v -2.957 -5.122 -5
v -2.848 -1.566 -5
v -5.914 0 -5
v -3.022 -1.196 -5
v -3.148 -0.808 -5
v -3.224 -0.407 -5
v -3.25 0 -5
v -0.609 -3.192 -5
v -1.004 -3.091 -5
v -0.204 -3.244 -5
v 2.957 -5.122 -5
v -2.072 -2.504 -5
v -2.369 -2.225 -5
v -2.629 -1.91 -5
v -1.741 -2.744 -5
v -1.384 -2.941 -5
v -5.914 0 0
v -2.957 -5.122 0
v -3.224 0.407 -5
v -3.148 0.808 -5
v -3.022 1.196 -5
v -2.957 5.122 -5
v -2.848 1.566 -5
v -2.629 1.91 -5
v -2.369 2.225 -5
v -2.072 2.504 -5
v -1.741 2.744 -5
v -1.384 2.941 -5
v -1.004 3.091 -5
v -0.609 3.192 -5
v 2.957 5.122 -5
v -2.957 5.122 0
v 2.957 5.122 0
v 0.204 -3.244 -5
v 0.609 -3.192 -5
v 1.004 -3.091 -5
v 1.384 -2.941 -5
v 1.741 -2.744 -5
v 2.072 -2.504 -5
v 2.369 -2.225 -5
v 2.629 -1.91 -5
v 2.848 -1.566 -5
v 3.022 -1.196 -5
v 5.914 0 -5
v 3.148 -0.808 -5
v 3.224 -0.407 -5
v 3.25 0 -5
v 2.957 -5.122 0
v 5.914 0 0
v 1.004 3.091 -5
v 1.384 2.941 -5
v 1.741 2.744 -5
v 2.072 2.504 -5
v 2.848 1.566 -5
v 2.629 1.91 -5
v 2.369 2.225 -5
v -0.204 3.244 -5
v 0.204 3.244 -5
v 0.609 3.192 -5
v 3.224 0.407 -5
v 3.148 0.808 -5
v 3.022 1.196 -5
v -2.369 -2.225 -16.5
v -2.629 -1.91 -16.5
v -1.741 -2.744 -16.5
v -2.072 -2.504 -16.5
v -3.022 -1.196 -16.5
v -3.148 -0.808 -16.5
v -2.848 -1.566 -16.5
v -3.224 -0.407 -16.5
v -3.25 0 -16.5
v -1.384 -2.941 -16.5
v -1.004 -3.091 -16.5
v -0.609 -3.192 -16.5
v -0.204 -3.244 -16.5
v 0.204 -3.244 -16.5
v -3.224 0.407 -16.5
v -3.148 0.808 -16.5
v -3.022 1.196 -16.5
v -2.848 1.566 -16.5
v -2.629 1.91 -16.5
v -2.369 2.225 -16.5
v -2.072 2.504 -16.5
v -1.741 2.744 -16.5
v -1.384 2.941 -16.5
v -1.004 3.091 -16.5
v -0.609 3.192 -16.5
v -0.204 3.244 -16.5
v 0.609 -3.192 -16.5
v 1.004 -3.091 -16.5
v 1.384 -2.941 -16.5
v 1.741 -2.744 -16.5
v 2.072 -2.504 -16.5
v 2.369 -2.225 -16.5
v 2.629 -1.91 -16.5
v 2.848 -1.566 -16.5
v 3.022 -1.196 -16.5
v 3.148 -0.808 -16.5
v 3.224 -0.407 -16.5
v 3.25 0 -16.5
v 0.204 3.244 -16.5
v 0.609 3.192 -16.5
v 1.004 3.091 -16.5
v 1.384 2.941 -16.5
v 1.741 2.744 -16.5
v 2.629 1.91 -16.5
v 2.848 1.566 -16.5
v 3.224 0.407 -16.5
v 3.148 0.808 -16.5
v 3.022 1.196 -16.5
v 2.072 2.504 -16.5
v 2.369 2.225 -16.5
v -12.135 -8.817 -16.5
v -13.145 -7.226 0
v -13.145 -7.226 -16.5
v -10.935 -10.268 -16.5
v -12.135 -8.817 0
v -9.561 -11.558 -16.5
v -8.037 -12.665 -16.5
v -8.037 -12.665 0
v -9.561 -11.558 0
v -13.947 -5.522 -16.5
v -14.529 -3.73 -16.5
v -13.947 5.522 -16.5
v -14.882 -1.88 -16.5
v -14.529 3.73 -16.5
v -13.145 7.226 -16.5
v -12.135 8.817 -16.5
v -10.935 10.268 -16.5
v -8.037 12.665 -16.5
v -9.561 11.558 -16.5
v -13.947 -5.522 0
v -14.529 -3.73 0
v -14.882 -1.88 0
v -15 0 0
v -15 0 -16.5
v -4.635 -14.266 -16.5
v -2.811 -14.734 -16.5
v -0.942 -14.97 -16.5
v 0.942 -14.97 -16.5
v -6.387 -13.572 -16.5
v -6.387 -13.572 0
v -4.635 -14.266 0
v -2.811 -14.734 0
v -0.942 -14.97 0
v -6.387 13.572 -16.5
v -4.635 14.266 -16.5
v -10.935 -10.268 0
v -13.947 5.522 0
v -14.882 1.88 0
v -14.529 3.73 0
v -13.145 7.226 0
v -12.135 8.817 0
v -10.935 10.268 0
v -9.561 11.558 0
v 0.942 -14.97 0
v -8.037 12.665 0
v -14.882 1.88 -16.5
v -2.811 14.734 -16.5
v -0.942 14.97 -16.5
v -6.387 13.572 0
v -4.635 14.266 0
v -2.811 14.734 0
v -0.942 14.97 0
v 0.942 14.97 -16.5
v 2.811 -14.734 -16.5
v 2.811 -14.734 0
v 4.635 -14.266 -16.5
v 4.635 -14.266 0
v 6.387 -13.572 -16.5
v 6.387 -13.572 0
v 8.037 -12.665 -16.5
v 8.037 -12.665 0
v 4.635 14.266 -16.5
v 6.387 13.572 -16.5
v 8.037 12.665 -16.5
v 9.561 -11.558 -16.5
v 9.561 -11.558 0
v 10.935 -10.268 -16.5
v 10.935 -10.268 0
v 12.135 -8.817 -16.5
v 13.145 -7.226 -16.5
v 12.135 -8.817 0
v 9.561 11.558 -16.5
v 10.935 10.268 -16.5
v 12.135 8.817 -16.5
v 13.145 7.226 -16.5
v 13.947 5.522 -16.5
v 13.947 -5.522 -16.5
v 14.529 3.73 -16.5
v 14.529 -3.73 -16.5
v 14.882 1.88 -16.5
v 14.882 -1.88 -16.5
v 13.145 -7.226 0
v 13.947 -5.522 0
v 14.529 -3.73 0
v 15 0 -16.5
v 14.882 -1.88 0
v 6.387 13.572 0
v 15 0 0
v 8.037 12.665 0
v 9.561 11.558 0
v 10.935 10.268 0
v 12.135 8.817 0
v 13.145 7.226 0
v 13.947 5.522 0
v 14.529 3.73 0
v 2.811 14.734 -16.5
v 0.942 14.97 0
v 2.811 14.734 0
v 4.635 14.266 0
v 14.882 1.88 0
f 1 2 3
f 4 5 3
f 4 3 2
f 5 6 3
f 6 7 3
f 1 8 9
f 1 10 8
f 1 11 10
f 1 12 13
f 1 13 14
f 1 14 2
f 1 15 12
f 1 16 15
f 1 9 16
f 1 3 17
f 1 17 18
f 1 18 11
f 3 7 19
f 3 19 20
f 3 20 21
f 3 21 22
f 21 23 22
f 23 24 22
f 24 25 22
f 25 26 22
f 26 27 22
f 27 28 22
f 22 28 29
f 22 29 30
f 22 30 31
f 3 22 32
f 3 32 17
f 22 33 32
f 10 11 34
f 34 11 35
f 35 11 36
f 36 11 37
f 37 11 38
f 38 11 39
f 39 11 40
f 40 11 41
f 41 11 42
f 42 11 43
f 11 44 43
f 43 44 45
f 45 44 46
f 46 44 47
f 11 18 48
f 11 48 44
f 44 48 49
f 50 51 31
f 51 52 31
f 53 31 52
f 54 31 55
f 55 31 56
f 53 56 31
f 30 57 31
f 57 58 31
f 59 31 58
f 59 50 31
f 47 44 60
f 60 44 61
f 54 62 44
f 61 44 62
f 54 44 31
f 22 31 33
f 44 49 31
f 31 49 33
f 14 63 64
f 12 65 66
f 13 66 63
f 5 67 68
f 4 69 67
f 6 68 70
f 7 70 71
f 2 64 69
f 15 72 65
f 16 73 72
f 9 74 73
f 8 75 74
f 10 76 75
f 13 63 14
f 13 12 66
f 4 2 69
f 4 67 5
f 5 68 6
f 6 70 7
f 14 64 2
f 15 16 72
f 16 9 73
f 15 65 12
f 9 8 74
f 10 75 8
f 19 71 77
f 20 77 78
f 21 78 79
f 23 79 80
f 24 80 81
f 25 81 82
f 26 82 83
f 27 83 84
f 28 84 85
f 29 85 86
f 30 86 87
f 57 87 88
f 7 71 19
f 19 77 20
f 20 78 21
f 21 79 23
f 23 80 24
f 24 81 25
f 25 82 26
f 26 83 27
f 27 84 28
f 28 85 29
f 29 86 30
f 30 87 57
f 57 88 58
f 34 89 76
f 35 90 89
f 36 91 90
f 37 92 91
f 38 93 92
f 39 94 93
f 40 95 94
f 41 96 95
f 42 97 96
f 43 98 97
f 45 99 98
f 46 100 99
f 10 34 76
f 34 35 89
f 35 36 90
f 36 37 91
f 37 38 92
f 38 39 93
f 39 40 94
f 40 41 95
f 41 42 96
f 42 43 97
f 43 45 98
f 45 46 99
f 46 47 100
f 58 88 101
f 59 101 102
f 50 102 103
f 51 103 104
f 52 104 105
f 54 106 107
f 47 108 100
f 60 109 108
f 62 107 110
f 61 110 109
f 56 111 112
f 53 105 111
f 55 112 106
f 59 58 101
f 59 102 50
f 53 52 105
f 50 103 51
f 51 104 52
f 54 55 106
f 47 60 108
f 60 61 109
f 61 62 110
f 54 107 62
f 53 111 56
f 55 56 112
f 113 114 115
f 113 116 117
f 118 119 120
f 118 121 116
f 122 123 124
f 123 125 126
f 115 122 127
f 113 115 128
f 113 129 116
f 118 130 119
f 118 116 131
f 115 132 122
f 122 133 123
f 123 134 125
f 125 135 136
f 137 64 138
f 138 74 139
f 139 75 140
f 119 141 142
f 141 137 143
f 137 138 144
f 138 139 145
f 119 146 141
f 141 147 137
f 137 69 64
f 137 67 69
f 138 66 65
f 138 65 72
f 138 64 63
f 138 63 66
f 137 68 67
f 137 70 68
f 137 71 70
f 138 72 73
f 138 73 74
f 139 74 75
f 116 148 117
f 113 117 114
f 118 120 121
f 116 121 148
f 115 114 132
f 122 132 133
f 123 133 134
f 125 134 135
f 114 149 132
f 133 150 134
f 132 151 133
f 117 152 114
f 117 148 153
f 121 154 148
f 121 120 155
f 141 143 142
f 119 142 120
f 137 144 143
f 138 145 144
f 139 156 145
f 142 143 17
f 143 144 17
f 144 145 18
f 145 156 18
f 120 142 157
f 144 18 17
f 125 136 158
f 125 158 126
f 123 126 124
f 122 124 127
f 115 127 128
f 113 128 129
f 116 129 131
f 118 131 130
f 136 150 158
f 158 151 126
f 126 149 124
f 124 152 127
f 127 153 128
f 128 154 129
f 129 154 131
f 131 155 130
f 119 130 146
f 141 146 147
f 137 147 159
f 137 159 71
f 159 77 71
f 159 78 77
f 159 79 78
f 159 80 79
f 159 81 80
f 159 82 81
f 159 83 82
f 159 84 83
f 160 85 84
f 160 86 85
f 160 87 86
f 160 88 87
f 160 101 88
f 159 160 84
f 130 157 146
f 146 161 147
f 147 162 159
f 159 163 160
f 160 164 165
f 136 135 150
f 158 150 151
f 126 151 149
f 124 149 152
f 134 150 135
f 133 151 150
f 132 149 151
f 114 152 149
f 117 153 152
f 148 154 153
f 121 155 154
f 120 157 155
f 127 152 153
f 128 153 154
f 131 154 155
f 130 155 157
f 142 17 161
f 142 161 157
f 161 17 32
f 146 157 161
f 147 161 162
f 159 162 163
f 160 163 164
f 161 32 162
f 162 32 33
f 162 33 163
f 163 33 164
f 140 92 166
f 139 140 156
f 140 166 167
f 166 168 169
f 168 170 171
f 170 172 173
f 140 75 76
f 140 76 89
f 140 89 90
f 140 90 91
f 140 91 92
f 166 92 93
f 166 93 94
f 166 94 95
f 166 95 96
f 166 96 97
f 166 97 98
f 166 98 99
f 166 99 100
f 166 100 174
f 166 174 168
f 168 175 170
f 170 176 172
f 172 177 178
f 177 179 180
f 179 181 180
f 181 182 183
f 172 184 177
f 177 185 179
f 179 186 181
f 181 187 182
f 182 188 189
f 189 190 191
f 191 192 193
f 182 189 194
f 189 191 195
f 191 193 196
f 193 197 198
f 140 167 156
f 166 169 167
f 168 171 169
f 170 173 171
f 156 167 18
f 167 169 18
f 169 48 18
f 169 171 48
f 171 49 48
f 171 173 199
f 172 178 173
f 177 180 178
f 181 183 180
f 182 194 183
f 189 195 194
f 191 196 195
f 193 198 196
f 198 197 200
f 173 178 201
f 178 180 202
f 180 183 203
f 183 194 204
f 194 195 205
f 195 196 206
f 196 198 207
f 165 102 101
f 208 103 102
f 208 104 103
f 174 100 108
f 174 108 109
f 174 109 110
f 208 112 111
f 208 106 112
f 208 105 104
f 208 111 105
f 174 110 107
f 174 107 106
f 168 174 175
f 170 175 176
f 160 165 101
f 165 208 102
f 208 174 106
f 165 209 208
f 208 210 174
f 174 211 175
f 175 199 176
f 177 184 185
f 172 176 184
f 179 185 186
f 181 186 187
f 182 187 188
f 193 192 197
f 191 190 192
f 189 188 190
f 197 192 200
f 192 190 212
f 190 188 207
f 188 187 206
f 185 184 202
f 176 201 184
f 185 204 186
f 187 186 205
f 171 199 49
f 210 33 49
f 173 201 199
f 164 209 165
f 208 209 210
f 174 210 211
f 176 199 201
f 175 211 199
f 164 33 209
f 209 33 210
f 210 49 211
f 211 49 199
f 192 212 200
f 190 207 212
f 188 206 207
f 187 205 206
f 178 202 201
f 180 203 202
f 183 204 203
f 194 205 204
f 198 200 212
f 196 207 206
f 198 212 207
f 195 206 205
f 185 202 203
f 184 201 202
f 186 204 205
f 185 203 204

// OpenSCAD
$fn = 50;

difference() {
	union() {
		translate(v = [0, 0, -16.5]) {
			cylinder(h = 16.5, r = 15.0);
		}
	}
	union() {
		translate(v = [0, 0, 0]) {
			rotate(a = [0, 0, 0]) {
				difference() {
					union() {
						translate(v = [0, 0, -5]) {
							linear_extrude(height = 5) {
								polygon(points = [[5.914249999999999, 0.0], [2.957125, 5.1218907443321156], [-2.9571249999999982, 5.1218907443321156], [-5.914249999999999, 7.242867331857232e-16], [-2.9571250000000022, -5.121890744332115], [2.9571249999999956, -5.121890744332118]]);
							}
						}
					}
					union();
				}
			}
		}
		#translate(v = [0, 0, -100.0]) {
			cylinder(h = 200, r = 3.25);
		}
	}
}
